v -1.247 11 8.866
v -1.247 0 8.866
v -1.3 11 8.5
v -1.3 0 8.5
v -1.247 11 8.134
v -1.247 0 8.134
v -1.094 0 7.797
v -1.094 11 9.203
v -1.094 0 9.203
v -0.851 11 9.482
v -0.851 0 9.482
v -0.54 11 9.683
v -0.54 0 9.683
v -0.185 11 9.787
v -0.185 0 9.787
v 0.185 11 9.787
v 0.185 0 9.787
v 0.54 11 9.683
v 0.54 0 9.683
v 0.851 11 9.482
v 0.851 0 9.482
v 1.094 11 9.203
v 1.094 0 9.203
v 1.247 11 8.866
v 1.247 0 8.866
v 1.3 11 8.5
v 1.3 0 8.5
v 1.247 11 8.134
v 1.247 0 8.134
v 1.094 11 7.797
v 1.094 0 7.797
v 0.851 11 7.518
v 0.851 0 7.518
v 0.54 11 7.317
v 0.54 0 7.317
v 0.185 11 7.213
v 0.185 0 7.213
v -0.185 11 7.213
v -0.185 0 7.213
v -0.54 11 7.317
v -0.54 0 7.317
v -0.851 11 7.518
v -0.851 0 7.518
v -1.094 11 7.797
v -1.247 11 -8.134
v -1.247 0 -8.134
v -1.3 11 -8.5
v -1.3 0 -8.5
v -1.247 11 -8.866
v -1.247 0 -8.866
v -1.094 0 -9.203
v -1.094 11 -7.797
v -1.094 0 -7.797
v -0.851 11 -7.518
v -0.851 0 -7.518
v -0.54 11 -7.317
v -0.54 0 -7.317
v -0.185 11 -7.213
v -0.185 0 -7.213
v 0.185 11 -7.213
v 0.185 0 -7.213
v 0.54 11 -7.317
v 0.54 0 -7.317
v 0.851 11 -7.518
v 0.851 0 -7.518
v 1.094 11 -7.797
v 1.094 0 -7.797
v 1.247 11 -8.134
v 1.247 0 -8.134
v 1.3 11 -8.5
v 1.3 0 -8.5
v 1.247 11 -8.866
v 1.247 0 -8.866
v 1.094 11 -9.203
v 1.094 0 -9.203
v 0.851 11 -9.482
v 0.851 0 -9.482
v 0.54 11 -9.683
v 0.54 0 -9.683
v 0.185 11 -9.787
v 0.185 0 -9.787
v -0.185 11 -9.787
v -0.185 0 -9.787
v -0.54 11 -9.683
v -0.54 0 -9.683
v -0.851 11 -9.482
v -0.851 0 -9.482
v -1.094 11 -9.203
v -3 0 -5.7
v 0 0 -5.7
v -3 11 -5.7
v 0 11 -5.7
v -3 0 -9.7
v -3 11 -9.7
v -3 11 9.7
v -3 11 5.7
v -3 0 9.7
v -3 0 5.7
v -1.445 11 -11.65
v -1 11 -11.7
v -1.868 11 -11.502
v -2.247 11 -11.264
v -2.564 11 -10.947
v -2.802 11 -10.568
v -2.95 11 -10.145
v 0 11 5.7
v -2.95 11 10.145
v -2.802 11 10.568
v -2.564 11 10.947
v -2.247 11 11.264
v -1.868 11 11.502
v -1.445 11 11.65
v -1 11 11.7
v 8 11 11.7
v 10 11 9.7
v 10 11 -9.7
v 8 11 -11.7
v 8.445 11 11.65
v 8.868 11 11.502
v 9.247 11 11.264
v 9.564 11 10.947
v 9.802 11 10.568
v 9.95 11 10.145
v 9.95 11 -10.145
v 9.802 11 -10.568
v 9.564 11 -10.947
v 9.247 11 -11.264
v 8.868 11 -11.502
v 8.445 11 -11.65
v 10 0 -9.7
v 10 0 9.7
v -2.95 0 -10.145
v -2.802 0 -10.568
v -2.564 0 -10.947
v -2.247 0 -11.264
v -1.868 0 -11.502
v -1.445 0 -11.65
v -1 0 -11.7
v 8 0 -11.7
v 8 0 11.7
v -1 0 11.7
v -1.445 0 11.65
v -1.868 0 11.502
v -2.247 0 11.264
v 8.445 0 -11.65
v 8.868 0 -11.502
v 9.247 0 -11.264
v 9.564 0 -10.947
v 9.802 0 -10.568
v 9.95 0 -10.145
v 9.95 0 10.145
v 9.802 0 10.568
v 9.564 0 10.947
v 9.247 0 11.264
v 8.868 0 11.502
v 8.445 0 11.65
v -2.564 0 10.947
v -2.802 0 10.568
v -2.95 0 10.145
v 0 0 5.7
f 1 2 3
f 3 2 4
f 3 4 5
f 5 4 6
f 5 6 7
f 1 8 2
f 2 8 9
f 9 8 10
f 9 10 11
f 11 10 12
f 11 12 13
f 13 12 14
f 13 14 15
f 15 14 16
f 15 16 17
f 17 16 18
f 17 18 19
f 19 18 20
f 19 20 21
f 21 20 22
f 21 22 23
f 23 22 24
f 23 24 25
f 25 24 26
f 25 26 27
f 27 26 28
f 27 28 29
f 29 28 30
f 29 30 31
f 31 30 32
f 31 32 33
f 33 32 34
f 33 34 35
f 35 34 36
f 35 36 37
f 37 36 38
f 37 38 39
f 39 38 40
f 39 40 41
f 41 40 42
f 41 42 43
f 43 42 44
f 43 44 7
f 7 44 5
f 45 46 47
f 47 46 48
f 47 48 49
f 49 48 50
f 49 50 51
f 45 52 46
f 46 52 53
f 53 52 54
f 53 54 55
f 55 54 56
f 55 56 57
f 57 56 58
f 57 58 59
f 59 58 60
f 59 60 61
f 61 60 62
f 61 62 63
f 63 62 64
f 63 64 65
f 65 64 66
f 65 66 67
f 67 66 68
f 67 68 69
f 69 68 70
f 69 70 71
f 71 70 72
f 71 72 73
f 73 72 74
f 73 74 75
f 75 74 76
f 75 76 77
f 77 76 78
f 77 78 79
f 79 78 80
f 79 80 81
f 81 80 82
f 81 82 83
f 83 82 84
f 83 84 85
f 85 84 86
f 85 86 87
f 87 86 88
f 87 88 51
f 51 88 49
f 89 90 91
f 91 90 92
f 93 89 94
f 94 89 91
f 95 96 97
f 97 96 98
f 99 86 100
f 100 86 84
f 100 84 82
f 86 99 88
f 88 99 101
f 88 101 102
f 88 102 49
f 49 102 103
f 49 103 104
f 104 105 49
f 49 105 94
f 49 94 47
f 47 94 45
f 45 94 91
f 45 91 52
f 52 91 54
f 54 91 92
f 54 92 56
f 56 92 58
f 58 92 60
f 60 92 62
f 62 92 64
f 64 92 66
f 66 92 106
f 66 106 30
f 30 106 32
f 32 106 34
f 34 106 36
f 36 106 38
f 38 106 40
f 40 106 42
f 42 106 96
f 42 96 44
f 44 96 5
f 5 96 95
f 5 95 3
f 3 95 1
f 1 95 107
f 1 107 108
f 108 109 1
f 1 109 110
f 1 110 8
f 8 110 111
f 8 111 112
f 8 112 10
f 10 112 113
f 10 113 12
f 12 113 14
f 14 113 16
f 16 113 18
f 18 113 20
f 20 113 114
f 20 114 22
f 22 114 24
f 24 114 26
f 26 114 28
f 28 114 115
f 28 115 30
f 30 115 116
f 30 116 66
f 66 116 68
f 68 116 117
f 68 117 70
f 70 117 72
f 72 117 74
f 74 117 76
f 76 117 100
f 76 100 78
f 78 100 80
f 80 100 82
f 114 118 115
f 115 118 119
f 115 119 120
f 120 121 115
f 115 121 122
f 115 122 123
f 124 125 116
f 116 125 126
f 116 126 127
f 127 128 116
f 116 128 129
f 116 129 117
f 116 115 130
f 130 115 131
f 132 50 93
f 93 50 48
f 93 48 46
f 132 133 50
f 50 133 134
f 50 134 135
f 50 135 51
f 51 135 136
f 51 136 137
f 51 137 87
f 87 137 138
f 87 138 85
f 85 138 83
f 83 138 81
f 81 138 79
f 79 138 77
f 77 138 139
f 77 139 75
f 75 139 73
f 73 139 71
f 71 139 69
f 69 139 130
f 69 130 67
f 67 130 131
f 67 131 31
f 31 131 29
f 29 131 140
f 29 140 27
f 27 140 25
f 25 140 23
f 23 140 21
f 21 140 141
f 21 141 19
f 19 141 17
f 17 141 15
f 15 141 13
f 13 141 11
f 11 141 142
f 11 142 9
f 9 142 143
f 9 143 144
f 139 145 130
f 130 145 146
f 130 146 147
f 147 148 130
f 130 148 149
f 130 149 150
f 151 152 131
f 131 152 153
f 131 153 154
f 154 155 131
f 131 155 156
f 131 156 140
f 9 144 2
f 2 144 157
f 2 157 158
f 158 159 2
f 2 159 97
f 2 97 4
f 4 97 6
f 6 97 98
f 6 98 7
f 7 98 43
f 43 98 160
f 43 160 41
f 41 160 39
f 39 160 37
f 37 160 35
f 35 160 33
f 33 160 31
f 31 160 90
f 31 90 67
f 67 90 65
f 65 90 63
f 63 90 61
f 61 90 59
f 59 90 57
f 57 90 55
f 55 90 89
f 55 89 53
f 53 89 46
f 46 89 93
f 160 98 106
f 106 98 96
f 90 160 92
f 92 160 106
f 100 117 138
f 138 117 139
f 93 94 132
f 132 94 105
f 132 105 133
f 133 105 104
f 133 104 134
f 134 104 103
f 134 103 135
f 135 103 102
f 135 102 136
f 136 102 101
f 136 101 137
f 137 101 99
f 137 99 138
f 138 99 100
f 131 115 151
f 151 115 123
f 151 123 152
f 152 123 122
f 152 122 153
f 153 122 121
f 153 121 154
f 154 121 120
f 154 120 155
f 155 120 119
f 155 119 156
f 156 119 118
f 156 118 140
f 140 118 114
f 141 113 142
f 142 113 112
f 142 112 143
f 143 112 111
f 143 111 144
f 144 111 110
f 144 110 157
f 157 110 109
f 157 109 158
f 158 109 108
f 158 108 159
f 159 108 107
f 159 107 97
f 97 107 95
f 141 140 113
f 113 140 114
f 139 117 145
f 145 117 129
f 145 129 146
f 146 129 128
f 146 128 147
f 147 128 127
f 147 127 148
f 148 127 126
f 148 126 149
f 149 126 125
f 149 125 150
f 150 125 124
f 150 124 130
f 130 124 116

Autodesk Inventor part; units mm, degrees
ref_plane "YZ Plane" through (0, 0, 0) normal (1, 0, 0) x (0, 1, 0)
ref_plane "XZ Plane" through (0, 0, 0) normal (0, 1, 0) x (-1, 0, 0)
ref_plane "XY Plane" through (0, 0, 0) normal (0, 0, 1) x (1, 0, 0)
sketch "Эскиз1" plane through (0, 0, 0) normal (0, 1, 0) x (-1, 0, 0)
  circle A0 centre (0, 8.5) radius 1.3
  circle A1 centre (0, -8.5) radius 1.3
  line L0 (0, 5.7) -> (3, 5.7)
  line L1 (3, 5.7) -> (3, 11.7)
  line L2 (3, 11.7) -> (-10, 11.7)
  line L3 (-10, 11.7) -> (-10, 0)
  line L4 (5.8356, 0) -> (-16.6075, 0) construction
  line L5 (0, 5.7) -> (0, 0)
  circle A2 centre (0, -8.5) radius 1.3
  line L6 (0, -5.7) -> (3, -5.7)
  line L7 (3, -5.7) -> (3, -11.7)
  line L8 (3, -11.7) -> (-10, -11.7)
  line L9 (-10, -11.7) -> (-10, 0)
  line L10 (0, -5.7) -> (0, 0)
  dimension "d1" = 2.6
  dimension "d2" = 2.6
  dimension "d5" = 3
  dimension "d6" = 6
  dimension "d7" = 13
extrude "Выдавливание1" add sketch "Эскиз1" along normal blind 11
fillet "Сопряжение1" radius 2 4 edges at (10, 5.5, 11.7) (-3, 5.5, 11.7) (10, 5.5, -11.7) (-3, 5.5, -11.7)
properties part number "стойки для драйверов"
